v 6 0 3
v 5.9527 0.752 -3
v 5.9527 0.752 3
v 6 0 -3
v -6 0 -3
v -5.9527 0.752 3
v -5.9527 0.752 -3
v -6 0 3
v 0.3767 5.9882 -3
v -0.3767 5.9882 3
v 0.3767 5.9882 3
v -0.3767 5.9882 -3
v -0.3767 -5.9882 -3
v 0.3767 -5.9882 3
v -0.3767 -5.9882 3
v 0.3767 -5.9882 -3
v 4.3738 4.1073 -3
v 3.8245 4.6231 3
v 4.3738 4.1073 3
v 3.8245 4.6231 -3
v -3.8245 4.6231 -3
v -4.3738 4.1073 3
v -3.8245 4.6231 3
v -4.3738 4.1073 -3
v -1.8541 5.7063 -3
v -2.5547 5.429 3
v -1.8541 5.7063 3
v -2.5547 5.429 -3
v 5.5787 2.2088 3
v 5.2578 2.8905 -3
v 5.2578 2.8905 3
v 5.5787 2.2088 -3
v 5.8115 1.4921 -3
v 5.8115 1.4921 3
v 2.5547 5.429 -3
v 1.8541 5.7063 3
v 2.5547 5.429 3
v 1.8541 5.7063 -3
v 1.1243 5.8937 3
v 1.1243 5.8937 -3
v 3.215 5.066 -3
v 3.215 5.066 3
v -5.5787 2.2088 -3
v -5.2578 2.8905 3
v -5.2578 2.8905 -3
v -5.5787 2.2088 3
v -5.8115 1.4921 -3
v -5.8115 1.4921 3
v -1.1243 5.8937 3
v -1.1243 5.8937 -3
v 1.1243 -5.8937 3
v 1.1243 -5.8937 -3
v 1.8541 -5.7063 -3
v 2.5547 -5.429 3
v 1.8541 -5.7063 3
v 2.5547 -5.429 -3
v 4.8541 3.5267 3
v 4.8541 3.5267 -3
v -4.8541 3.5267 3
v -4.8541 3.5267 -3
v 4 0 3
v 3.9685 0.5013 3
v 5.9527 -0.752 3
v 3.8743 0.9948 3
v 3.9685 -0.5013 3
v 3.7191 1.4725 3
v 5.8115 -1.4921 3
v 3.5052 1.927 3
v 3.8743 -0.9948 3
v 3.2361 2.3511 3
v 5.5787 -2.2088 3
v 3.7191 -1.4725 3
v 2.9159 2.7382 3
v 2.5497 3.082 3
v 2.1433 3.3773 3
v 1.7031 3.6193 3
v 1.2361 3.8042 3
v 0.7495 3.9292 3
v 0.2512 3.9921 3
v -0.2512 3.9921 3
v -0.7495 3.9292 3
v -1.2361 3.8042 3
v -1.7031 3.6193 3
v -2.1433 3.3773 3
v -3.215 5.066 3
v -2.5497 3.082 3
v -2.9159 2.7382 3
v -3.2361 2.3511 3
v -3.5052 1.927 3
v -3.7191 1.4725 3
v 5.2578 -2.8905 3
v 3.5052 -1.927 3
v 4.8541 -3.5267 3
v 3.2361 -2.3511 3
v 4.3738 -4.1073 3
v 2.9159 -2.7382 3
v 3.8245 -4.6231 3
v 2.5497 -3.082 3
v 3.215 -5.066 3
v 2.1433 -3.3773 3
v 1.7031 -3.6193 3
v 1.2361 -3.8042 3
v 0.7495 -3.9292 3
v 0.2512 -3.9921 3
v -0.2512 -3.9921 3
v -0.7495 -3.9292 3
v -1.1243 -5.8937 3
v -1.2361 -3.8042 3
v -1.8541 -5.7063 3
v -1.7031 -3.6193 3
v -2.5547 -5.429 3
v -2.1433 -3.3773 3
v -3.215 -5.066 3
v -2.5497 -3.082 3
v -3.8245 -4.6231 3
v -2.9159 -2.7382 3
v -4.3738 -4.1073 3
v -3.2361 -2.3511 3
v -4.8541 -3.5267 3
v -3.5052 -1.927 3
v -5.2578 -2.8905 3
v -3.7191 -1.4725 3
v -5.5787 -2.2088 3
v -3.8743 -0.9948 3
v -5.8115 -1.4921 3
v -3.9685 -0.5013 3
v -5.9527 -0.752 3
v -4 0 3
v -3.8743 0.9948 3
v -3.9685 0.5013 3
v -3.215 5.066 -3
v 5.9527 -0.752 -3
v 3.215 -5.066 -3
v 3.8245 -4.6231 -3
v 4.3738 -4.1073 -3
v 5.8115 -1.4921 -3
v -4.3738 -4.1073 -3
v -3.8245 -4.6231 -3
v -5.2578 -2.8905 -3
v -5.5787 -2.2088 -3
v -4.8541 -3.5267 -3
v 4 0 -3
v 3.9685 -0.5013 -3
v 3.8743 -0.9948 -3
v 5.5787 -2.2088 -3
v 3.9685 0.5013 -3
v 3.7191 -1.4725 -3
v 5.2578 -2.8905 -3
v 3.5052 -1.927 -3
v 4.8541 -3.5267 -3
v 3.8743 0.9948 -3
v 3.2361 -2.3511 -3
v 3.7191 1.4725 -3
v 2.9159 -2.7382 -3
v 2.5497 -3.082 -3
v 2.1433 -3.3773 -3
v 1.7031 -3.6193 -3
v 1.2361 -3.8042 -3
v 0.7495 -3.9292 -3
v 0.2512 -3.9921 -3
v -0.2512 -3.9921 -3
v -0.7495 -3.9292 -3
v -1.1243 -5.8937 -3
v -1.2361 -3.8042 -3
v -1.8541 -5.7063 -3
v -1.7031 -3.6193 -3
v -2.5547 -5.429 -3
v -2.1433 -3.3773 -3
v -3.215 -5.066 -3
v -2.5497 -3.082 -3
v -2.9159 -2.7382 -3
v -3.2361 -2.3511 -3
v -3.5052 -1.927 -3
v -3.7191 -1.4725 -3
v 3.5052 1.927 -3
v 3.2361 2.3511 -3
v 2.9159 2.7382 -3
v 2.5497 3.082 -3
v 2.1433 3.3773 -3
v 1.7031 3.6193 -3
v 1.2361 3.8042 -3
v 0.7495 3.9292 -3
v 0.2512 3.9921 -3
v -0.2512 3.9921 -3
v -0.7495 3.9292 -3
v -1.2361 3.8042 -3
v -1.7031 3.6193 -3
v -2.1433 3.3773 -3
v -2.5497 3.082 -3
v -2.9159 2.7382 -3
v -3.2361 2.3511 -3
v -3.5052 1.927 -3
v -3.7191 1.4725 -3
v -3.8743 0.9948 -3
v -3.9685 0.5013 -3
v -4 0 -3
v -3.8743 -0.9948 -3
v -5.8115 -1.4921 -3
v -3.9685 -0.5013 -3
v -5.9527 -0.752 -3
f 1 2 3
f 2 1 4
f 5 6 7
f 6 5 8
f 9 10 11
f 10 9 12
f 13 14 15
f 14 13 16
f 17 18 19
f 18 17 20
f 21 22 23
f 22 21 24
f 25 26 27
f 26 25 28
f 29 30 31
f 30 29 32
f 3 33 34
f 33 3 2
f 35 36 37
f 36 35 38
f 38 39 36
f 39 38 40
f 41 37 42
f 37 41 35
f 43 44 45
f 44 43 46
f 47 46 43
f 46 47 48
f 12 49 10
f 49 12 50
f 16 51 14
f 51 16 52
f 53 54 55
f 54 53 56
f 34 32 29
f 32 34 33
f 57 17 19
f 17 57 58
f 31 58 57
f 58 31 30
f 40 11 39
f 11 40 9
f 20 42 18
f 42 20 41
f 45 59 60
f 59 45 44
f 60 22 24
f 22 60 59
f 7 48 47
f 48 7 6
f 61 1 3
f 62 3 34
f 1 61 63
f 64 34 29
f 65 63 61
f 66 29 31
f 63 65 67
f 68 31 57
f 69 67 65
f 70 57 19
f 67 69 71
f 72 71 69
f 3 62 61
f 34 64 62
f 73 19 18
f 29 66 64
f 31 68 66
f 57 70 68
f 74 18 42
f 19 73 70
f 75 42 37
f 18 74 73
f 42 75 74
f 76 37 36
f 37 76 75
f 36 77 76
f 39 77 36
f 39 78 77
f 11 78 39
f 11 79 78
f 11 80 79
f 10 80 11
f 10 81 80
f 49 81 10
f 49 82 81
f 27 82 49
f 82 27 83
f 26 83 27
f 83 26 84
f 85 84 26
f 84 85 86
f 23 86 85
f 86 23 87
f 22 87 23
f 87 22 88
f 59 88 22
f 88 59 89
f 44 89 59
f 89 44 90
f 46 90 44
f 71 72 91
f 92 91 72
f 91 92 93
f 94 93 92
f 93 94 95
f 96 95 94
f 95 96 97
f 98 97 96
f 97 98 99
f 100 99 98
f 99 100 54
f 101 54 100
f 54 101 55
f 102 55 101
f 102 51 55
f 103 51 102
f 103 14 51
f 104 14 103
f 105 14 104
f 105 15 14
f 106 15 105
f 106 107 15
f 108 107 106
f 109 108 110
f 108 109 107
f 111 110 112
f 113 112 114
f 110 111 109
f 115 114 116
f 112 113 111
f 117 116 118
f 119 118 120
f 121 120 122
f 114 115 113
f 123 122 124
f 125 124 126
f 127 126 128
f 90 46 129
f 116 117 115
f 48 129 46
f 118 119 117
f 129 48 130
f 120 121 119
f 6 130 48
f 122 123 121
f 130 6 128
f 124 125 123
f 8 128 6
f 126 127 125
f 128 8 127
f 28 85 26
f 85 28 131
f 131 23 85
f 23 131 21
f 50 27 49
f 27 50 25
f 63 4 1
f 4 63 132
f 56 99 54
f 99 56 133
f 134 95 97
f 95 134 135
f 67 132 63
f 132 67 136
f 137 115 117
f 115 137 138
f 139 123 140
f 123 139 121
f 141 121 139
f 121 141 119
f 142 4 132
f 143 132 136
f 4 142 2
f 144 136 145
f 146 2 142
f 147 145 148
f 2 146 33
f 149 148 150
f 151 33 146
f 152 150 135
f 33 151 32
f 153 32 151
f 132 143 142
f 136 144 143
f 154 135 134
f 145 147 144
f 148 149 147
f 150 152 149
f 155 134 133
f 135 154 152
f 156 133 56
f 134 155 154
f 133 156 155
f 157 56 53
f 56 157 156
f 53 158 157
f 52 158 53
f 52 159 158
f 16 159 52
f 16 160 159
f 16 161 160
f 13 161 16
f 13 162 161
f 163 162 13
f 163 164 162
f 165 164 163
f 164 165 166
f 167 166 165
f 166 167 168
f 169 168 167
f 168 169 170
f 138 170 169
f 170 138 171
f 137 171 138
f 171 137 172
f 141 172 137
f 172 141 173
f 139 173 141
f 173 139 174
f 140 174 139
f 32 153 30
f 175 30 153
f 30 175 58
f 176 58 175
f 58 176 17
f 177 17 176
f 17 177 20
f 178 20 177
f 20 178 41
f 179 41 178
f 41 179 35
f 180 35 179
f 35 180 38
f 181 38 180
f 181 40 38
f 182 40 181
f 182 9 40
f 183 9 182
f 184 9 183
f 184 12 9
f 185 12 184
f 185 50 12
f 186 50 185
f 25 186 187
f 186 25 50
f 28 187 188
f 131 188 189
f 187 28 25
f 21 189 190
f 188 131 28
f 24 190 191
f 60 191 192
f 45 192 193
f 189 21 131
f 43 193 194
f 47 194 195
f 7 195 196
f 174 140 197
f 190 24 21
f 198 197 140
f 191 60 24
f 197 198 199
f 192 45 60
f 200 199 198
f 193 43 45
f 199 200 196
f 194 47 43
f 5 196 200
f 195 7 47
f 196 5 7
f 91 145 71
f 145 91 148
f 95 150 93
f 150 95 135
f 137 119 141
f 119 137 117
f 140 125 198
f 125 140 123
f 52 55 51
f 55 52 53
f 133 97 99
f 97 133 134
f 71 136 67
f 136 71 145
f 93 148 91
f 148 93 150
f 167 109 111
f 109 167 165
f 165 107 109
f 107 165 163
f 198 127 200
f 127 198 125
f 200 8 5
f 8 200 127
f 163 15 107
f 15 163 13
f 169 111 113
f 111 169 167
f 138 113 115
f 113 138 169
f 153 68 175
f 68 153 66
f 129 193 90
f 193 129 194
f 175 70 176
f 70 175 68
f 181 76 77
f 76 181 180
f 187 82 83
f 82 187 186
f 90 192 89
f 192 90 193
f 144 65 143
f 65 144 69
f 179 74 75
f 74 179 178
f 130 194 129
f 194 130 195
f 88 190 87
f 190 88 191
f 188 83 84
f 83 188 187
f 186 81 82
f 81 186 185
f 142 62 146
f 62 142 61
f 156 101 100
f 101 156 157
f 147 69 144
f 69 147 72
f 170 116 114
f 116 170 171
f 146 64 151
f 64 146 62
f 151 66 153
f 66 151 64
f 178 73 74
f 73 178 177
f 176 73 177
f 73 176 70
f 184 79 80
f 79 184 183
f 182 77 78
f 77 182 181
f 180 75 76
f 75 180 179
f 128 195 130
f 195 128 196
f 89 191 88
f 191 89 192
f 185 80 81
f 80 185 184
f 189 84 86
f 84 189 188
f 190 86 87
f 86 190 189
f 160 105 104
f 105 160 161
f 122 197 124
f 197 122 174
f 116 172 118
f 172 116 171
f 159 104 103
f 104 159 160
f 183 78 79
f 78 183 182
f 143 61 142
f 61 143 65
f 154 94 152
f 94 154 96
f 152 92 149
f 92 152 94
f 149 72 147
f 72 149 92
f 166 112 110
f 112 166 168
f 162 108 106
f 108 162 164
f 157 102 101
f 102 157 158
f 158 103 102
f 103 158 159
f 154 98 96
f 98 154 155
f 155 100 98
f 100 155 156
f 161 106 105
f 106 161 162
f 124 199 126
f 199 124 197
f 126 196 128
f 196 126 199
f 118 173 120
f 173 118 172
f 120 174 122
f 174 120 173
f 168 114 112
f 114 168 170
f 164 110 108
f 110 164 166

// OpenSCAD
$fn = 50;


difference() {
	union() {
		translate(v = [0, 0, -3.0000000000]) {
			cylinder(h = 6, r = 6.0000000000);
		}
	}
	union() {
		translate(v = [0, 0, -100.0000000000]) {
			cylinder(h = 200, r = 4);
		}
	}
}
